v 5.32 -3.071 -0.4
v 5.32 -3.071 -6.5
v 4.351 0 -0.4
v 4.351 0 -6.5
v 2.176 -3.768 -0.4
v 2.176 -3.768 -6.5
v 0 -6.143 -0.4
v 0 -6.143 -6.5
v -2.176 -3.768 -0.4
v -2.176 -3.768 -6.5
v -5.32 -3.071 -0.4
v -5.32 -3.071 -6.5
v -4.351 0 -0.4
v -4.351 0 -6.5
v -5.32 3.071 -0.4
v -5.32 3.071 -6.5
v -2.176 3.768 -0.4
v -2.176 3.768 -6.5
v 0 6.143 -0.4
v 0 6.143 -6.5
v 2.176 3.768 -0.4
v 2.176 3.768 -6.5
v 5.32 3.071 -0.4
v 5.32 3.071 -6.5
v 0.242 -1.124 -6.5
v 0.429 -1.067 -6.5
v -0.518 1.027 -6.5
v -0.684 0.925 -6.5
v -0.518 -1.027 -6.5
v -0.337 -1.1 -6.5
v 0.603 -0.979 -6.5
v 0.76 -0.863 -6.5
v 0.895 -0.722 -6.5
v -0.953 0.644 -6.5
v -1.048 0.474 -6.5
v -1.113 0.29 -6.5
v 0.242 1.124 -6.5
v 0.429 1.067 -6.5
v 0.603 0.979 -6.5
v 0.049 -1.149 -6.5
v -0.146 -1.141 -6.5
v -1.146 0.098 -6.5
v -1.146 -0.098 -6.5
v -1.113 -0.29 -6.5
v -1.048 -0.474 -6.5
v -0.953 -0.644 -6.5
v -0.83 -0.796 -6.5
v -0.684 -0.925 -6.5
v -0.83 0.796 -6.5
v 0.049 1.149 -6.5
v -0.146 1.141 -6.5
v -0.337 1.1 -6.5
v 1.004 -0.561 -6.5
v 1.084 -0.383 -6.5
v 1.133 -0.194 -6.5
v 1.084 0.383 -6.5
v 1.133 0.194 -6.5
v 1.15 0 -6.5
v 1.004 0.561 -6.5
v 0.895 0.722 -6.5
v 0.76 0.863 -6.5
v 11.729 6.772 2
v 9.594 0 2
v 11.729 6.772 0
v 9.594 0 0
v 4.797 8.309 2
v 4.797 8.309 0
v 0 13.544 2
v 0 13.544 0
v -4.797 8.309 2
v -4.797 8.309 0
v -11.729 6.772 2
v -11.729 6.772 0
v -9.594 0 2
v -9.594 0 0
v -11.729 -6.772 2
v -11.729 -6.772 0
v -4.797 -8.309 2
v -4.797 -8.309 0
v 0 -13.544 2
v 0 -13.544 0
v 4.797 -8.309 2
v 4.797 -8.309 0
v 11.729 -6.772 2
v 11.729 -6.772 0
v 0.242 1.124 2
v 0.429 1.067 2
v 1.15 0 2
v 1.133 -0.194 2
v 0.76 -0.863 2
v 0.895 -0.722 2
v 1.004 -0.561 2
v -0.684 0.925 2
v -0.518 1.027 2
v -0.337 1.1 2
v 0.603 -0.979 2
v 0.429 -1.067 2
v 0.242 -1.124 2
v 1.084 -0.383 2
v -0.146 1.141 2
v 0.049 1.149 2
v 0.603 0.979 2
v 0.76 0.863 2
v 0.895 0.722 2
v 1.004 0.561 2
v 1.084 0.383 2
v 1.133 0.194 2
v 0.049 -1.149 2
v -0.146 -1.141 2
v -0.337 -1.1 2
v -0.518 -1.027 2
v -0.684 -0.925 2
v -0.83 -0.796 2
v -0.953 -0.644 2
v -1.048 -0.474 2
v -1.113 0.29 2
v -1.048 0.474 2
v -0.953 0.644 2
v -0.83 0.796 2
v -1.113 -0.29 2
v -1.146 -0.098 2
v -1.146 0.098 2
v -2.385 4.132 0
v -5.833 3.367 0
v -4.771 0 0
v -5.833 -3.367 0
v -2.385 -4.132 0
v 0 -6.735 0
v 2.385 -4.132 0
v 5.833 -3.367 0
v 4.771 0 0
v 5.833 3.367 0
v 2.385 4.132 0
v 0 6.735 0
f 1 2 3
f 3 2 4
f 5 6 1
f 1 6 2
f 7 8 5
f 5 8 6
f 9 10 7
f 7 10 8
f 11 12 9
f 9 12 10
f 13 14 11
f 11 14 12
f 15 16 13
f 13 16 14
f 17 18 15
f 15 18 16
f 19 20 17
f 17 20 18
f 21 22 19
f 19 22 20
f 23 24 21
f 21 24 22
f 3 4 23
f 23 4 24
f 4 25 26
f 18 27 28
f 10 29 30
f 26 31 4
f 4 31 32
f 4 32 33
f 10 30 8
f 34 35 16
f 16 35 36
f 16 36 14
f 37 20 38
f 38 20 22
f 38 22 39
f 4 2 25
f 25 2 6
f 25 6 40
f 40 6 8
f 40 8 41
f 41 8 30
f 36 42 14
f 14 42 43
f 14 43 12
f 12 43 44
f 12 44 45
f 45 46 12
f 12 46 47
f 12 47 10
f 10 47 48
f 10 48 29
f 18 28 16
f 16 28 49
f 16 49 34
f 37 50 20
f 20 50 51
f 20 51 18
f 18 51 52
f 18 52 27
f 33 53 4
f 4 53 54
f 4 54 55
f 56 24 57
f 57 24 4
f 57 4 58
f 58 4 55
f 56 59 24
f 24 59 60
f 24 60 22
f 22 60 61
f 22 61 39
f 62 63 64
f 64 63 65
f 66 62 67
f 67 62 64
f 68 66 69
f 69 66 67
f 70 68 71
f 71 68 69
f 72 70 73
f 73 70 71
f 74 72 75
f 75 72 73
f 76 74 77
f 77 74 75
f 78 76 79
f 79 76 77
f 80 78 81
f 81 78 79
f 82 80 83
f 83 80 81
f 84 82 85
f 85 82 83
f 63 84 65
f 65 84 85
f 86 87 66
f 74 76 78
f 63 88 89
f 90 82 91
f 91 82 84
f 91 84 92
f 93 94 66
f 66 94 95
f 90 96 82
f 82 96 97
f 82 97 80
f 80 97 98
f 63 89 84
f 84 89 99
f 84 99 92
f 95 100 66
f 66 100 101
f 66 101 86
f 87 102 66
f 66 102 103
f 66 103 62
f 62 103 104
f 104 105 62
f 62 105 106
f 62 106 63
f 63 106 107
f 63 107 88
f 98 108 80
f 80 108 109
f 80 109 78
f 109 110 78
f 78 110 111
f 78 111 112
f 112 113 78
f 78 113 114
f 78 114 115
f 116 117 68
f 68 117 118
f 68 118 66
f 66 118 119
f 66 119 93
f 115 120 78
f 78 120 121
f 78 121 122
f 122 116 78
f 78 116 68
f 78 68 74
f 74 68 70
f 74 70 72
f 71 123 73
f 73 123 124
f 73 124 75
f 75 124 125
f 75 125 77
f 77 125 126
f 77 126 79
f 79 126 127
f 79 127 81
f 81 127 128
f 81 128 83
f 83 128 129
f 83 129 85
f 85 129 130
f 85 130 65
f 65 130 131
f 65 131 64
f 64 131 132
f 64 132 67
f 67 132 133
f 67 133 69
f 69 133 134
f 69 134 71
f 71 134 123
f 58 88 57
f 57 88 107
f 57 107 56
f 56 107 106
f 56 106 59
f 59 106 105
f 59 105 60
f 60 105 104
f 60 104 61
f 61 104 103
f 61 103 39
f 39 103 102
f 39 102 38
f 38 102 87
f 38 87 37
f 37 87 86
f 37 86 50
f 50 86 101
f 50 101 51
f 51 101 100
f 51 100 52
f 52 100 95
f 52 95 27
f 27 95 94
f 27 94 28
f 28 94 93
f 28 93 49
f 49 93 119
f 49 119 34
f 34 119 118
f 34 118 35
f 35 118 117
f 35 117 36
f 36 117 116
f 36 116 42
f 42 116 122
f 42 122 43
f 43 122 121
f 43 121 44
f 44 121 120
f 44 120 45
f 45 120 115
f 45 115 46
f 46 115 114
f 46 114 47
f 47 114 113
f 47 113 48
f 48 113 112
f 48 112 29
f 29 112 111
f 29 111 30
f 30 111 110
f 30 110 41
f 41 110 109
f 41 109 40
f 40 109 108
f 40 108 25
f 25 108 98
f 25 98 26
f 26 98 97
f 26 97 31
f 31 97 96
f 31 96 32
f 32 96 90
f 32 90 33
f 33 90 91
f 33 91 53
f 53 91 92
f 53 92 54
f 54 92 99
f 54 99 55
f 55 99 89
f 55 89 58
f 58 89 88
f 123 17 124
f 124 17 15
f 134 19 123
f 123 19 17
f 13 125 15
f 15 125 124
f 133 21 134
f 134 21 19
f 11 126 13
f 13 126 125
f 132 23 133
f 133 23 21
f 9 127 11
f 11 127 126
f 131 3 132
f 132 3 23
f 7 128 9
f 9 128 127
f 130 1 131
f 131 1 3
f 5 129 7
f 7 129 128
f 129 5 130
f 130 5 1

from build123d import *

# Parameters (mm, degrees)
BOSS_EXTRUDE1_DEPTH     = 6.5
BOSS_EXTRUDE2_DEPTH     = 2
CUT_EXTRUDE1_DEPTH      = 20.059283612
CUT_EXTRUDE1_DEPTH_BACK = 20.059283612
SKETCH1_4_R             = 1.15
CHAMFER1_SIZE           = 0.4


with BuildPart() as part:
    # Sketch1 → Boss-Extrude1 (new body)
    with BuildSketch(Plane.XY):
        Polygon((2.175697935, 3.768419365), (0, 6.142777017), (-2.175697935, 3.768419365), (-5.319800946, 3.071388508), (-4.351395869, 0), (-5.319800946, -3.071388508), (-2.175697935, -3.768419365), (0, -6.142777017), (2.175697935, -3.768419365), (5.319800946, -3.071388508), (4.351395869, 0), (5.319800946, 3.071388508), align=None)
    extrude(amount=-BOSS_EXTRUDE1_DEPTH)

    # Sketch2 → Boss-Extrude2 (add)
    with BuildSketch(Plane.XY):
        Polygon((11.729199677, 6.771856591), (4.797020748, 8.30868366), (0, 13.543713181), (-4.797020748, 8.30868366), (-11.729199677, 6.771856591), (-9.594041495, 0), (-11.729199677, -6.771856591), (-4.797020748, -8.30868366), (0, -13.543713181), (4.797020748, -8.30868366), (11.729199677, -6.771856591), (9.594041495, 0), align=None)
    extrude(amount=BOSS_EXTRUDE2_DEPTH)

    # Sketch1<4> → Cut-Extrude1 (cut, two sides: drawn at the far end of the back side and taken through both)
    with BuildSketch(Plane.XY.offset(-CUT_EXTRUDE1_DEPTH_BACK)):
        Circle(SKETCH1_4_R)
    extrude(amount=CUT_EXTRUDE1_DEPTH + CUT_EXTRUDE1_DEPTH_BACK, mode=Mode.SUBTRACT)

    # Chamfer1
    chamfer1_edges = [part.edges().sort_by_distance(p)[0] for p in [
        (3.74774944, -3.419903937, 0),
        (1.087848967, -4.955598191, 0),
        (-1.087848967, -4.955598191, 0),
        (-3.74774944, -3.419903937, 0),
        (-4.835598408, -1.535694254, 0),
        (-4.835598408, 1.535694254, 0),
        (-3.74774944, 3.419903937, 0),
        (4.835598408, -1.535694254, 0),
        (4.835598408, 1.535694254, 0),
        (3.74774944, 3.419903937, 0),
        (1.087848967, 4.955598191, 0),
        (-1.087848967, 4.955598191, 0),
    ]]
    chamfer(chamfer1_edges, length=CHAMFER1_SIZE)


solid = part.part
